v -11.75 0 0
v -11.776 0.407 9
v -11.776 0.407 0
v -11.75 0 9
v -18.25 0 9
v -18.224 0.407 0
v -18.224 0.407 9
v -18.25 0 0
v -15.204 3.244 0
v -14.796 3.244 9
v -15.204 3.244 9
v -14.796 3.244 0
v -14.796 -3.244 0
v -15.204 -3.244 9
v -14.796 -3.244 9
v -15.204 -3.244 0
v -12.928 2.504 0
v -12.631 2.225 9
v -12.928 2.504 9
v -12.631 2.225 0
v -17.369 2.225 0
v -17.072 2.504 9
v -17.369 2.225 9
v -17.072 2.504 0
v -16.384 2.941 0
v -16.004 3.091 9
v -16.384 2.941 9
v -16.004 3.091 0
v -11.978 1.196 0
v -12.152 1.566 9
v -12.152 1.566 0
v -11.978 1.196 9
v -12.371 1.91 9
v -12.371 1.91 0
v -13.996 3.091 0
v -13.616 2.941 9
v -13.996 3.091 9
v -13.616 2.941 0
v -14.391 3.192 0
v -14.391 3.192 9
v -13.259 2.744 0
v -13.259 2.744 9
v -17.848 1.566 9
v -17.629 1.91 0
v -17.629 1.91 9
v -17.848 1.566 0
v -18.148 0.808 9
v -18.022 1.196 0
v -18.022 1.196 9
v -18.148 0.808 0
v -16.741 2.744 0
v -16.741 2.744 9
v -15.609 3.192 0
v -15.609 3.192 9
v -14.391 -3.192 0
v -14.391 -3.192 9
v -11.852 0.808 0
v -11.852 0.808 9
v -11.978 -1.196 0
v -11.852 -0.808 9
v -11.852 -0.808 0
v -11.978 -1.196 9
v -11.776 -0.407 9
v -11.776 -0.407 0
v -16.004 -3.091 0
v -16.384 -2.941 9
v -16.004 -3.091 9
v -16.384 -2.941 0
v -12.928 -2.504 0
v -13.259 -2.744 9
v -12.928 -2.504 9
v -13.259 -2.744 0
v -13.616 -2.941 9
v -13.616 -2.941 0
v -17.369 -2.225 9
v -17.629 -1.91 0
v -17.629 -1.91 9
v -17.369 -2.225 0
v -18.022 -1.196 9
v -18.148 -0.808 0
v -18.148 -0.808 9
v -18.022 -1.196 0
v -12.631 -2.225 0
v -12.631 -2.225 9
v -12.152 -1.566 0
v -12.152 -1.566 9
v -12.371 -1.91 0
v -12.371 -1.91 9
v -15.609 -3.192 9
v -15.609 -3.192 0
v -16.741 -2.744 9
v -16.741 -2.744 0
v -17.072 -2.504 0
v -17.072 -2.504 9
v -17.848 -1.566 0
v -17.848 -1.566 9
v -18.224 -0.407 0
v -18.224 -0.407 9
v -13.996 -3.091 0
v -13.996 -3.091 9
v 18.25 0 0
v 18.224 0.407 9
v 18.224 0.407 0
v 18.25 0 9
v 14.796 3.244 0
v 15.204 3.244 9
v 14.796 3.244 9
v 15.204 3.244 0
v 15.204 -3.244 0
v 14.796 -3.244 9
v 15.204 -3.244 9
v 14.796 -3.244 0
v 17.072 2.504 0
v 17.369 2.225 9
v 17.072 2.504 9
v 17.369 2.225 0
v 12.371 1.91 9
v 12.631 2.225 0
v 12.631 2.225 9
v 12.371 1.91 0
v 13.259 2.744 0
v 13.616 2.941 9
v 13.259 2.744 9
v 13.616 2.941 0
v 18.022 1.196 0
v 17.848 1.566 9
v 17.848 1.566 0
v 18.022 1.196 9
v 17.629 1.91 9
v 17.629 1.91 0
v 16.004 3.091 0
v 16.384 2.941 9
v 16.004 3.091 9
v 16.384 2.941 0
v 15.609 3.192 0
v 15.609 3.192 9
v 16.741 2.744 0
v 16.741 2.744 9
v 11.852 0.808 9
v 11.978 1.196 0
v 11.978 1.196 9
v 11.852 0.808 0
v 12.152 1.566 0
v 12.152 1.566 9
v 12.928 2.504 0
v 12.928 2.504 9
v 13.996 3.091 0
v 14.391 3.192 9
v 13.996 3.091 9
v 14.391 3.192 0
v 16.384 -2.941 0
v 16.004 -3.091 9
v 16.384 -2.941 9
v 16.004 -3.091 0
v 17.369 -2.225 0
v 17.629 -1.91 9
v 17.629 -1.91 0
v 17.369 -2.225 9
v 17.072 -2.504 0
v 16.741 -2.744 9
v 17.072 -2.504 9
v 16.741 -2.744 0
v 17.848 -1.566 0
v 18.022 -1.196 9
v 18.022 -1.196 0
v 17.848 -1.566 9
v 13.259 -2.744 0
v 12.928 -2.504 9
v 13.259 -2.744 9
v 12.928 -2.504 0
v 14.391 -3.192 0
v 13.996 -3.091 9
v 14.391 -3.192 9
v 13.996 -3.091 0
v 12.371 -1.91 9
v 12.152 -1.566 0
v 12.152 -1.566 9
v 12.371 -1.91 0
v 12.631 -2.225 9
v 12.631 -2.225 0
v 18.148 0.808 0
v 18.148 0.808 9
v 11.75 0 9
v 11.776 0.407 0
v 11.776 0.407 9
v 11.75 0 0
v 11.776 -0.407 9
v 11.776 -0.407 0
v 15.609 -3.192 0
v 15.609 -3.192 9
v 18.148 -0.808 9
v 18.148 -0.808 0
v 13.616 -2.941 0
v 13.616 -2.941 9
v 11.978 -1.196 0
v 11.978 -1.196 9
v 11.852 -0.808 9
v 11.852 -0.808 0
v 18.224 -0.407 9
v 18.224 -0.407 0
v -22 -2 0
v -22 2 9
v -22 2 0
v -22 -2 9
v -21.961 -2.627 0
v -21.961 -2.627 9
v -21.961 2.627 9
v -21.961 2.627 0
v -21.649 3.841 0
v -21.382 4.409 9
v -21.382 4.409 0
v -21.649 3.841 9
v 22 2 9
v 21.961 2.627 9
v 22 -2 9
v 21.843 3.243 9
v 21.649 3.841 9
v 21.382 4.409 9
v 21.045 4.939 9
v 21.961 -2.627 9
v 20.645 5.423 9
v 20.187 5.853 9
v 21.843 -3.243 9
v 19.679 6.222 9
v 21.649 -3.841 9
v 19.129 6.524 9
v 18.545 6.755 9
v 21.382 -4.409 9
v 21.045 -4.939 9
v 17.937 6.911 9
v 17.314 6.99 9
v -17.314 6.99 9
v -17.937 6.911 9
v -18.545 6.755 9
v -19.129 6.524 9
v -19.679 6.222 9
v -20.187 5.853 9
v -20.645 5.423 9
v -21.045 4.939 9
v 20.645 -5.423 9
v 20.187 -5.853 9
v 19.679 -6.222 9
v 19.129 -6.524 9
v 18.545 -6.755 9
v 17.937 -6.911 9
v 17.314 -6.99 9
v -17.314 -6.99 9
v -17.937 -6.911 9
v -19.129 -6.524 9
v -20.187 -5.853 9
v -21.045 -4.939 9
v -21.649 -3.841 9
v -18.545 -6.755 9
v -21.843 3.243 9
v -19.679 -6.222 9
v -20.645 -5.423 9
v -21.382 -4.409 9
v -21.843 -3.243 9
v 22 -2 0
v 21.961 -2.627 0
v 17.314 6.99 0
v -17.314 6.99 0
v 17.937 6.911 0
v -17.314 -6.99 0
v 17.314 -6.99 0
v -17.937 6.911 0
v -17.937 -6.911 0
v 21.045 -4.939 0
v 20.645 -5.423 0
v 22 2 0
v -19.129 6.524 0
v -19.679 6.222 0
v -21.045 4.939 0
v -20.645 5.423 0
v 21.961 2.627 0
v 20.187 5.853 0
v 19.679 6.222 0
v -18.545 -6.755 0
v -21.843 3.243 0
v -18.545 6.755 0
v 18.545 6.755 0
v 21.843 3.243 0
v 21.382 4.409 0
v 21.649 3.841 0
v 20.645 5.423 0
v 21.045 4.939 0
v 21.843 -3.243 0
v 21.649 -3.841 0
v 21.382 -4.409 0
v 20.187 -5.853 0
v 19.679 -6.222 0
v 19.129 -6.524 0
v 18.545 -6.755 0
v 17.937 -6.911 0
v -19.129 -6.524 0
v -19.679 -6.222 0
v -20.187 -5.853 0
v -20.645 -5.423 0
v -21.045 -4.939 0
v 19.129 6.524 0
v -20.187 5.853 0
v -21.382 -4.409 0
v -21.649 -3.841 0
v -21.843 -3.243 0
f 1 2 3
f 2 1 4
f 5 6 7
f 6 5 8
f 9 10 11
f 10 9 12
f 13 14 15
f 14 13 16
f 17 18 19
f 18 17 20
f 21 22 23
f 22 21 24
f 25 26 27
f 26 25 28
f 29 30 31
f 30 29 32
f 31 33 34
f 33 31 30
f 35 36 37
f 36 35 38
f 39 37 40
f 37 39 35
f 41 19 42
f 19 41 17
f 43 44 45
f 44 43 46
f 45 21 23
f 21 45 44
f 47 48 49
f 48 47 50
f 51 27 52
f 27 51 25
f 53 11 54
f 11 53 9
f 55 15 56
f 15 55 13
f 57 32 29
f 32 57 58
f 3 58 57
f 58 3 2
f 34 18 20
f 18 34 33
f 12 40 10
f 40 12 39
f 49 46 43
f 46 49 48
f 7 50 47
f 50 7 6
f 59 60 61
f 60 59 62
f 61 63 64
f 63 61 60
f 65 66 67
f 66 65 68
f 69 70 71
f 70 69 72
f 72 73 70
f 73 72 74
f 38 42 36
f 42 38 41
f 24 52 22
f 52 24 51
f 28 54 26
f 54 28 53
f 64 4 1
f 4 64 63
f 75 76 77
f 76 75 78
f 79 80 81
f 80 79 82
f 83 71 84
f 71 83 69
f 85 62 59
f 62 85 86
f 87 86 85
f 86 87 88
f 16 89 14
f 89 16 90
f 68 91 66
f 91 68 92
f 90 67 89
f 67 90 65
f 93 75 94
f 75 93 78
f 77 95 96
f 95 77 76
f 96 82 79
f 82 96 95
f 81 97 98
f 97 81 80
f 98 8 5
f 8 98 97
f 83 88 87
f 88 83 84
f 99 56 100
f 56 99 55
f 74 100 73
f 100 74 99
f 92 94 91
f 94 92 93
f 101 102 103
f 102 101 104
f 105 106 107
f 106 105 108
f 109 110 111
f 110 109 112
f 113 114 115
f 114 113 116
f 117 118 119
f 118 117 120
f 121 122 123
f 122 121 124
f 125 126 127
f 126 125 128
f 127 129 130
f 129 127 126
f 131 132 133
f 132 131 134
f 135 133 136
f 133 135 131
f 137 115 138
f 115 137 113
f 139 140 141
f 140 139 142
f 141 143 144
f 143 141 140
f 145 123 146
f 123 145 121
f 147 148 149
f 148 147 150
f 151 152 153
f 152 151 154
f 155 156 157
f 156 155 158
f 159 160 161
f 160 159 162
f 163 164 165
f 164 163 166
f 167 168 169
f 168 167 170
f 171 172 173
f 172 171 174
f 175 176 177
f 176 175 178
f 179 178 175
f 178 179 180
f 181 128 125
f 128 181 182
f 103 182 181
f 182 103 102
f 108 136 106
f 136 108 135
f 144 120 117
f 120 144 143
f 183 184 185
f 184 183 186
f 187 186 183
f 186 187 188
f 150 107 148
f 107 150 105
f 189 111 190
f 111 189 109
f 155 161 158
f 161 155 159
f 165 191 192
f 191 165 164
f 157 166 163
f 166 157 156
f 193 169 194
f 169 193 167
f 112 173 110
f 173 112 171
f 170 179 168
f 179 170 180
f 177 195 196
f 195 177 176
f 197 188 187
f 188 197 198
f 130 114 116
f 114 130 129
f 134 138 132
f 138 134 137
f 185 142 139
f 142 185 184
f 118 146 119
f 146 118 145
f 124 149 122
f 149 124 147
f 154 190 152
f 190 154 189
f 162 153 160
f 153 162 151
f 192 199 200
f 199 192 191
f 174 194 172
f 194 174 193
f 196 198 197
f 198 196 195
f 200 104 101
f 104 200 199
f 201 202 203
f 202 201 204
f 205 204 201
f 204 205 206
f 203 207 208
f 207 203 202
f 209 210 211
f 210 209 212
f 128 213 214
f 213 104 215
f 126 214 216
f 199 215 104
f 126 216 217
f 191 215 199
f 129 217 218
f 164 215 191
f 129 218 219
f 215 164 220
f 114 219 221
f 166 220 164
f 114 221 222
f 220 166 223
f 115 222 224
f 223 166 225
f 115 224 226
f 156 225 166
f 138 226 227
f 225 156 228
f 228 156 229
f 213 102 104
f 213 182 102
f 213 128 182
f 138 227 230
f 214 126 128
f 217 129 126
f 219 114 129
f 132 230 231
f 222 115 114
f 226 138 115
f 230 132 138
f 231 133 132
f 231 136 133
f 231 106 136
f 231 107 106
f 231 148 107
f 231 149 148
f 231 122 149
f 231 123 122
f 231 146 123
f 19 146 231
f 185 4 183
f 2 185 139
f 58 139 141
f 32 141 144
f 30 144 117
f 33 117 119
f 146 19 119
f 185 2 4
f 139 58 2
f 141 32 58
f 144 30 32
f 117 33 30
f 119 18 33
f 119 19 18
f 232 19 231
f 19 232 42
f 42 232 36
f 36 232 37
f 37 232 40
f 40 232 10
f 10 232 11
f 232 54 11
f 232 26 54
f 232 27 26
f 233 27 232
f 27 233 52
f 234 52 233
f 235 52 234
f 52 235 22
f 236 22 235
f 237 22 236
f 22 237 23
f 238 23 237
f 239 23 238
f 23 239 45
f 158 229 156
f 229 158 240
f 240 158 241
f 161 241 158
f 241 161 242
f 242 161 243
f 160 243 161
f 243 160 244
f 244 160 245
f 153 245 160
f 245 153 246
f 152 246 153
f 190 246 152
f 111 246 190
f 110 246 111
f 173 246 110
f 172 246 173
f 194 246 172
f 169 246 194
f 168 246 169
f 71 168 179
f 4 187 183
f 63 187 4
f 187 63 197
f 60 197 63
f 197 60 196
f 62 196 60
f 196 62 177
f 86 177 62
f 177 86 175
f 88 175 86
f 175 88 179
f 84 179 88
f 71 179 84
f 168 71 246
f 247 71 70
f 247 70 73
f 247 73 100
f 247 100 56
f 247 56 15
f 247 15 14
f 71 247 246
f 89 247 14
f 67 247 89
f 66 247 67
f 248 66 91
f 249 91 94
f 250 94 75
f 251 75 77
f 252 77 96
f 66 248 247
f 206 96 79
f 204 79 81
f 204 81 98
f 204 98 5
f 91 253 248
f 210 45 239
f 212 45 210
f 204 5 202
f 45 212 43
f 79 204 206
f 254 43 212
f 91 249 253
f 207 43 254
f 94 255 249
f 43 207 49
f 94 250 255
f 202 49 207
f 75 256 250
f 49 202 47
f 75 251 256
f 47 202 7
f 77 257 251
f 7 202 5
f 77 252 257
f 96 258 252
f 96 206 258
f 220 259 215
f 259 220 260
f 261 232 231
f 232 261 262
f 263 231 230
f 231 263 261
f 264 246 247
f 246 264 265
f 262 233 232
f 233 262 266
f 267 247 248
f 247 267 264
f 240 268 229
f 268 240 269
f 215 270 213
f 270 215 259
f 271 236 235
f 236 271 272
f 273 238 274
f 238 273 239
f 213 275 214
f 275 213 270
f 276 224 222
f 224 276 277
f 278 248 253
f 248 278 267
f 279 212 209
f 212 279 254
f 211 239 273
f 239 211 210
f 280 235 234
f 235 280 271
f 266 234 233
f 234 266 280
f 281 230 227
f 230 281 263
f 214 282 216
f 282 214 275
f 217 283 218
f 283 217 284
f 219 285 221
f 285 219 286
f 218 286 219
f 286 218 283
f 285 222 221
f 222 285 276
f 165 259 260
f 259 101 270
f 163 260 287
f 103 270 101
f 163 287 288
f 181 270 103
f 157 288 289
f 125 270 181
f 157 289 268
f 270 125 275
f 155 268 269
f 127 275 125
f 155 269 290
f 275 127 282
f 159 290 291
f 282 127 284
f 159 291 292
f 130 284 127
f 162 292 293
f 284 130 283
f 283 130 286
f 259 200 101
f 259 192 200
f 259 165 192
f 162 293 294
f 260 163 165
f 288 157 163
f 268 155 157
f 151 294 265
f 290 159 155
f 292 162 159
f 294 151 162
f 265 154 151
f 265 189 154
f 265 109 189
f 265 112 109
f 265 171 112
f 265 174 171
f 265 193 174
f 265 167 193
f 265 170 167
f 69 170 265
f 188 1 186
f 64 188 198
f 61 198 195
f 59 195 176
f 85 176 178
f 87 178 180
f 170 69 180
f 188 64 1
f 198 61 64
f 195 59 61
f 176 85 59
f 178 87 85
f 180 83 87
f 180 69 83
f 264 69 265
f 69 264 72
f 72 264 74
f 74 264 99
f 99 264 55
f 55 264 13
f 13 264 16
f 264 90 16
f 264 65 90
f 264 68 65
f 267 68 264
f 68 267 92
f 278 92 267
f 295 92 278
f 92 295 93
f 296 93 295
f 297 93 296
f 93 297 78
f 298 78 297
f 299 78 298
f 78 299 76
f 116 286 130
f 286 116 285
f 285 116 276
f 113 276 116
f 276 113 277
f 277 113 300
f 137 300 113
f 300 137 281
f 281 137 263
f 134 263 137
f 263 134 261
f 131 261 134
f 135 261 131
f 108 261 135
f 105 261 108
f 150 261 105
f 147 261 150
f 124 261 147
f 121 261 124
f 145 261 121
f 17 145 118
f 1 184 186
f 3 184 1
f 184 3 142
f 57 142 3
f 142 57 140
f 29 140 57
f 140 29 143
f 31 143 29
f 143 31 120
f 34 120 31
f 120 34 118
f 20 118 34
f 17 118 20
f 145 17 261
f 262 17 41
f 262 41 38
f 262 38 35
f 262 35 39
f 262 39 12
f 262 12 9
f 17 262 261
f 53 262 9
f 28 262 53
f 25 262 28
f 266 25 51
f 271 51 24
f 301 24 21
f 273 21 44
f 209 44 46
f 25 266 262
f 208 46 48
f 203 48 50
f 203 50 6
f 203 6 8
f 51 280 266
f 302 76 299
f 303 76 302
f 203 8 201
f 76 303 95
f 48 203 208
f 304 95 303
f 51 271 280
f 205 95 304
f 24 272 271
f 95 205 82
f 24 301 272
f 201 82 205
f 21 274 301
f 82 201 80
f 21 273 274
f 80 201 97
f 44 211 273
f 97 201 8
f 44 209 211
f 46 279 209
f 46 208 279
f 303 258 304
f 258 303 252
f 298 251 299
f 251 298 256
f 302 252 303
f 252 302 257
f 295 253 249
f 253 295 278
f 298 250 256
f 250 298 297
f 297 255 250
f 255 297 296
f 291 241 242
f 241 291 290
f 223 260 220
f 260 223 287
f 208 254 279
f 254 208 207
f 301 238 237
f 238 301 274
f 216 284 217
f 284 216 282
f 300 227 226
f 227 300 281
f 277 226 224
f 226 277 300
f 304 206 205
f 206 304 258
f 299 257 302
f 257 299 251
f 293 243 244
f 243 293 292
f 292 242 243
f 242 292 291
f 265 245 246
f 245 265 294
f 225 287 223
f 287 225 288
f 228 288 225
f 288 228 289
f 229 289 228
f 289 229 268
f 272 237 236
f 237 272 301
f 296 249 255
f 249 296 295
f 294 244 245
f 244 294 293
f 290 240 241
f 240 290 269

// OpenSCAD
$fn = 50;


difference() {
	union() {
		hull() {
			translate(v = [-17.0000000000, 2.0000000000, 0]) {
				cylinder(h = 9, r = 5);
			}
			translate(v = [17.0000000000, 2.0000000000, 0]) {
				cylinder(h = 9, r = 5);
			}
			translate(v = [-17.0000000000, -2.0000000000, 0]) {
				cylinder(h = 9, r = 5);
			}
			translate(v = [17.0000000000, -2.0000000000, 0]) {
				cylinder(h = 9, r = 5);
			}
		}
	}
	union() {
		translate(v = [-15.0000000000, 0.0000000000, -100.0000000000]) {
			cylinder(h = 200, r = 3.2500000000);
		}
		translate(v = [-15.0000000000, 0.0000000000, -100.0000000000]) {
			cylinder(h = 200, r = 3.2500000000);
		}
		translate(v = [15.0000000000, 0.0000000000, -100.0000000000]) {
			cylinder(h = 200, r = 3.2500000000);
		}
		translate(v = [15.0000000000, 0.0000000000, -100.0000000000]) {
			cylinder(h = 200, r = 3.2500000000);
		}
	}
}
